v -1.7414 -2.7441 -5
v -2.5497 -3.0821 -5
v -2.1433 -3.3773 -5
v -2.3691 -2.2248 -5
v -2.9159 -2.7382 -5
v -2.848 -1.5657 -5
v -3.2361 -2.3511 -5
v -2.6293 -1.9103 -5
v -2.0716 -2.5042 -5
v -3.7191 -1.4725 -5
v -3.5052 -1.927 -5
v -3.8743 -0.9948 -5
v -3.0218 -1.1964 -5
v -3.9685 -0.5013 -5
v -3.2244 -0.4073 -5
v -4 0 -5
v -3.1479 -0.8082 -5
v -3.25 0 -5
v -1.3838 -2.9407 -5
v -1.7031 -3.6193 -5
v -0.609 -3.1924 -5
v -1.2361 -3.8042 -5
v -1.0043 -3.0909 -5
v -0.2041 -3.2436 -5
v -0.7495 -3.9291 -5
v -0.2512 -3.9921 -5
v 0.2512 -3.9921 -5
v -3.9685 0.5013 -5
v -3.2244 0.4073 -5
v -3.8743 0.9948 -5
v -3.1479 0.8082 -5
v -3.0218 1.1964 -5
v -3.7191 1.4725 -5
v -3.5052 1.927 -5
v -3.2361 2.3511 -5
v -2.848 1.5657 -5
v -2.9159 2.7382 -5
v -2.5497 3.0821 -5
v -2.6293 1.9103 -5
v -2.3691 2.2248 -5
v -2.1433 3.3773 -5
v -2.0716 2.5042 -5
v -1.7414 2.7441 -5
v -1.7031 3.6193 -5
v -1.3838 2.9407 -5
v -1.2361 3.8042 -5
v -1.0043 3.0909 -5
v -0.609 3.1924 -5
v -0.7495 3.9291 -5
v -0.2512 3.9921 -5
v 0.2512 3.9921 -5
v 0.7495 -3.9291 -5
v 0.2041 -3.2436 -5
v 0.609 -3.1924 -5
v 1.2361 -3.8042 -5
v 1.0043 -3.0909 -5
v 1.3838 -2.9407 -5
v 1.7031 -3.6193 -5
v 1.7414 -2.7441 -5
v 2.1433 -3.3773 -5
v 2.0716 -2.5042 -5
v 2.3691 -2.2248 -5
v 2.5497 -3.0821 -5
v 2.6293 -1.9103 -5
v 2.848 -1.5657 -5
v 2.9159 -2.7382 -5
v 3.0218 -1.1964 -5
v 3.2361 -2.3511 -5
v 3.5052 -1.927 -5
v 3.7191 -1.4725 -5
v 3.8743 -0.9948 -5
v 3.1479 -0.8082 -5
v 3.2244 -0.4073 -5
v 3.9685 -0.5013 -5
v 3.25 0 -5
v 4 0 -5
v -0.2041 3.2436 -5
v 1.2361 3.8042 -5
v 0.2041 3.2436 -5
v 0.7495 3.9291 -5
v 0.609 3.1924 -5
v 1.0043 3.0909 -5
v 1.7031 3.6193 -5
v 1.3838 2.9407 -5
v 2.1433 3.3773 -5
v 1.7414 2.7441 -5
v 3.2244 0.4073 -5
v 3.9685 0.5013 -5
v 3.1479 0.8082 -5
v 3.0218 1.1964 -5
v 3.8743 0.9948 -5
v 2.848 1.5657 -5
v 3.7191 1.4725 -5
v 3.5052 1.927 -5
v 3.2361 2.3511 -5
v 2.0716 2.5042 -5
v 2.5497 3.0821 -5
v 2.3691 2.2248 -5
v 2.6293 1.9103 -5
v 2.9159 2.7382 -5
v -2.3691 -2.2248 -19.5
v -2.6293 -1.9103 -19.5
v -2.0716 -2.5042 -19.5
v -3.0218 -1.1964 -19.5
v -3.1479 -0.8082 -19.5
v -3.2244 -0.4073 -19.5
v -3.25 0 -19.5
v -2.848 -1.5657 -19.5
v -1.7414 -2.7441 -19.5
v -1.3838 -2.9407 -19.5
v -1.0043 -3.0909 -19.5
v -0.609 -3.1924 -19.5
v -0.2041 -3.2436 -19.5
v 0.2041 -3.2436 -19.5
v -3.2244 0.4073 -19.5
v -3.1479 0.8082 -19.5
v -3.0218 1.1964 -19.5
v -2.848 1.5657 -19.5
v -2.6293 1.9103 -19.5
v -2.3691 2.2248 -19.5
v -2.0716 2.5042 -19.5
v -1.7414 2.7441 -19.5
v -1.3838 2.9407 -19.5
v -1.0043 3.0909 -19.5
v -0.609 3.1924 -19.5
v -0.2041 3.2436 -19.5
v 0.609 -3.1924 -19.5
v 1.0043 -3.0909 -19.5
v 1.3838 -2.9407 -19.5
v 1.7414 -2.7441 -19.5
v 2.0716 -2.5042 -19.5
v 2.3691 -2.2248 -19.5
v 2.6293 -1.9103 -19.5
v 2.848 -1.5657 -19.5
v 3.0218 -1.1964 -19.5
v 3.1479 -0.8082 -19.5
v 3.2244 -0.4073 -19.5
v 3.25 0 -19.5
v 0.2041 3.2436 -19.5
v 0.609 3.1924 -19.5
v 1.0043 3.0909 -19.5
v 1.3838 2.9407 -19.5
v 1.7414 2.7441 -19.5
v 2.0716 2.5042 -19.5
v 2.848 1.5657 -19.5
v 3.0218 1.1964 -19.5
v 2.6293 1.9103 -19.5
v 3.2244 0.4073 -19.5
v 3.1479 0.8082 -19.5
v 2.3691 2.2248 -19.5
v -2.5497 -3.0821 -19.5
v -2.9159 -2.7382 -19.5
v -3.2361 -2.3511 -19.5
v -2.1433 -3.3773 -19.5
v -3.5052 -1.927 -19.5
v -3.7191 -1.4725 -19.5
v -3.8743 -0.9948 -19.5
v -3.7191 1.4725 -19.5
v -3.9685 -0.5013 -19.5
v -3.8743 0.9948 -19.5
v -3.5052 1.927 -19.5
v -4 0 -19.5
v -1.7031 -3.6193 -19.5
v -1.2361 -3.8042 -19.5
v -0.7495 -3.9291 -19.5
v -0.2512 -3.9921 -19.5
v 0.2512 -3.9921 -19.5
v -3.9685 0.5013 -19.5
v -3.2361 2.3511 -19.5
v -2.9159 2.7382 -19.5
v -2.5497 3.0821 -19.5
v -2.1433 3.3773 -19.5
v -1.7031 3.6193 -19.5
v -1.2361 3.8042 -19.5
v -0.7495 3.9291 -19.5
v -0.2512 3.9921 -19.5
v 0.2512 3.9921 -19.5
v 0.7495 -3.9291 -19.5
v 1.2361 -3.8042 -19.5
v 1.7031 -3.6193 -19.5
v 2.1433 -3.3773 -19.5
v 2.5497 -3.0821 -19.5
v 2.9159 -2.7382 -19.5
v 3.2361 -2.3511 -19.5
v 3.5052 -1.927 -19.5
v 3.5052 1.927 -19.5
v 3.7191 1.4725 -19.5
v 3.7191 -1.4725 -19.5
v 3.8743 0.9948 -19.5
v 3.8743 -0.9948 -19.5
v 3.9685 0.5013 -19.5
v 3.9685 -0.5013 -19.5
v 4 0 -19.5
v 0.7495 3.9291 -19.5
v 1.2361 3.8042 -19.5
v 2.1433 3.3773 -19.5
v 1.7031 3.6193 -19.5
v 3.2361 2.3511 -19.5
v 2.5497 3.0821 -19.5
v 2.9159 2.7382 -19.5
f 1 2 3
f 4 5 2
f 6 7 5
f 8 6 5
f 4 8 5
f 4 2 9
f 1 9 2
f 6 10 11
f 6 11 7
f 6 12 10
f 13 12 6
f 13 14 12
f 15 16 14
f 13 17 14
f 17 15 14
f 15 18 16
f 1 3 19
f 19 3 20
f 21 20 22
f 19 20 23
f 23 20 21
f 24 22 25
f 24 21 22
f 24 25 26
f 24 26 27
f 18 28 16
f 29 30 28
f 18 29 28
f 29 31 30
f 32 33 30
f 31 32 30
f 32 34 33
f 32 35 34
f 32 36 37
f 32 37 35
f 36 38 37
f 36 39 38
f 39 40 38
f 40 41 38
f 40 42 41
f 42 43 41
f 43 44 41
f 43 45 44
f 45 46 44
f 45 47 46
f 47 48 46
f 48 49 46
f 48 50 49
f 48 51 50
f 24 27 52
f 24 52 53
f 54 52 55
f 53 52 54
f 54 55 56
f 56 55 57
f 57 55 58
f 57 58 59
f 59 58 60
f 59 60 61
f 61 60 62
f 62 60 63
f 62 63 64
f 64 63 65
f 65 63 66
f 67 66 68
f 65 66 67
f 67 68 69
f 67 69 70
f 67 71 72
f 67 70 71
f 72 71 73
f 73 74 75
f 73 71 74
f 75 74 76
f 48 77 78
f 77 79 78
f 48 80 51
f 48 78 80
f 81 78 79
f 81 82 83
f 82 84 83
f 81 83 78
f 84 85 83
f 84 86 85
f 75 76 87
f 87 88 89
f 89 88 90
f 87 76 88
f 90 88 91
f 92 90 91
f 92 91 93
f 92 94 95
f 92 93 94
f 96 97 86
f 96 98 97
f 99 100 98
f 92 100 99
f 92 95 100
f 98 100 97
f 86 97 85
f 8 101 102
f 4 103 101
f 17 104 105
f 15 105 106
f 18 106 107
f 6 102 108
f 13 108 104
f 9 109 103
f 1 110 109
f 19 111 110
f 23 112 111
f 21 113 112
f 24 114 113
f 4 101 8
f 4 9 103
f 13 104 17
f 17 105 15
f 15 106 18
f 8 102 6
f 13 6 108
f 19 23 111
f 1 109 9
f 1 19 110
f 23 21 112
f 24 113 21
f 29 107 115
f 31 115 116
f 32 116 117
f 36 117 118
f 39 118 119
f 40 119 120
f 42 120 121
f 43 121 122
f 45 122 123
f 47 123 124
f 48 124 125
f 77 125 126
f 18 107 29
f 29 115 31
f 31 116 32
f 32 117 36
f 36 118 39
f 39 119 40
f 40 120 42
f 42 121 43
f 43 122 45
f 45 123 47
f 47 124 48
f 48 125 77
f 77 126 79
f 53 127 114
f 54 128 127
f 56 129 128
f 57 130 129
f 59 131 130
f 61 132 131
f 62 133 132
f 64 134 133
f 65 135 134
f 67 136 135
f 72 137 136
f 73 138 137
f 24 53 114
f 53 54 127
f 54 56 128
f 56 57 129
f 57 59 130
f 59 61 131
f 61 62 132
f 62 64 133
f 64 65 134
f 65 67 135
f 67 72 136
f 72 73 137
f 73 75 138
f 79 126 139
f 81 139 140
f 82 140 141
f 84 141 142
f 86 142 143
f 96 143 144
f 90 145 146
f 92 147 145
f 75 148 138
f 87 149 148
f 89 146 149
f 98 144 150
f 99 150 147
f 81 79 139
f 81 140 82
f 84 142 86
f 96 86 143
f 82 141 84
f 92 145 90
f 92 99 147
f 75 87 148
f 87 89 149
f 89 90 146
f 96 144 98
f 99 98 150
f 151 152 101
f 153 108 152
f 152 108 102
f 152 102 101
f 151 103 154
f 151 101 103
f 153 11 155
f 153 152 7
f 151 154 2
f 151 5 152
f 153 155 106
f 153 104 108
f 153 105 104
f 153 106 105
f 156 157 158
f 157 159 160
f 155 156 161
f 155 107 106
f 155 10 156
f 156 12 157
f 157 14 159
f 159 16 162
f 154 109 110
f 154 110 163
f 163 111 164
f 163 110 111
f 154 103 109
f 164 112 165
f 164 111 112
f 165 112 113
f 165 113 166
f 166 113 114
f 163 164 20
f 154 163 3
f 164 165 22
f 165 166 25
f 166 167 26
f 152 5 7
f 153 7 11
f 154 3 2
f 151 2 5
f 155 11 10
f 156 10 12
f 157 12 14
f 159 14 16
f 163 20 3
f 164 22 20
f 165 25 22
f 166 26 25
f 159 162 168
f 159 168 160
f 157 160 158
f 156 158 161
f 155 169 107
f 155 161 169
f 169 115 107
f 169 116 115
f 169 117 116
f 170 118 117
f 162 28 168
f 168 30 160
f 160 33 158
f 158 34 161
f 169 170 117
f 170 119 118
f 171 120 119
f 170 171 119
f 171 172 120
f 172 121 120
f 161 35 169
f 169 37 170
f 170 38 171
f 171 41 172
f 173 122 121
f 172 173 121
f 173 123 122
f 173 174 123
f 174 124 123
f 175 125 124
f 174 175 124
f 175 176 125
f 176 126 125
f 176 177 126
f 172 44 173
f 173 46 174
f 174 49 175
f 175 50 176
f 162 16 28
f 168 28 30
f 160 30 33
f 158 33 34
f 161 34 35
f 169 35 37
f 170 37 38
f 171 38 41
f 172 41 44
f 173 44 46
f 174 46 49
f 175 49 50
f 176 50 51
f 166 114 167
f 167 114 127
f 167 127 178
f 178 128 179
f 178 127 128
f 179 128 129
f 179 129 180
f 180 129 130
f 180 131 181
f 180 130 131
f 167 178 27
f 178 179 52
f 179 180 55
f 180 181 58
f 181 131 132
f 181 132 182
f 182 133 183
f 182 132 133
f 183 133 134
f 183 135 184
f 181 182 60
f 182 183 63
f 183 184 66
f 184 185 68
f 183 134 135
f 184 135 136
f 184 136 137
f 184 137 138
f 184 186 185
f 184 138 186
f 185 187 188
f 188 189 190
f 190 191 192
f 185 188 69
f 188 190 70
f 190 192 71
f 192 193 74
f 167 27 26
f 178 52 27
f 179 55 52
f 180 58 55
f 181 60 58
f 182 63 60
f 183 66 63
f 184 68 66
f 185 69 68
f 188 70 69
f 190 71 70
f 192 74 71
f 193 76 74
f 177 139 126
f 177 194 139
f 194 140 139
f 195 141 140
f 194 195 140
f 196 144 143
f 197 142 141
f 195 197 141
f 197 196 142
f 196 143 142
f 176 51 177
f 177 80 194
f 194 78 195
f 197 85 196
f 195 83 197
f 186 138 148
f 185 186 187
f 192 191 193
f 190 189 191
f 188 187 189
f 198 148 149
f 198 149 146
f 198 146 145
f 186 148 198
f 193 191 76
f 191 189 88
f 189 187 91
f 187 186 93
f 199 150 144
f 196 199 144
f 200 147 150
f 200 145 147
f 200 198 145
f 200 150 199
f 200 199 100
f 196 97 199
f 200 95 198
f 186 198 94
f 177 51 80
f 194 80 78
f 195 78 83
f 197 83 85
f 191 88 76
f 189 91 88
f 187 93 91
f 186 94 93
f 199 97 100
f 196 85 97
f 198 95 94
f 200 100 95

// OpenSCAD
$fn = 50;

difference() {
	union() {
		translate(v = [0, 0, -19.5]) {
			cylinder(h = 19.5, r = 4.0);
		}
	}
	union() {
		translate(v = [0, 0, 0]) {
			rotate(a = [0, 0, 0]) {
				difference() {
					union() {
						translate(v = [0, 0, -5]) {
							linear_extrude(height = 5) {
								polygon(points = [[5.914249999999999, 0.0], [2.957125, 5.1218907443321156], [-2.9571249999999982, 5.1218907443321156], [-5.914249999999999, 7.242867331857232e-16], [-2.9571250000000022, -5.121890744332115], [2.9571249999999956, -5.121890744332118]]);
							}
						}
					}
					union();
				}
			}
		}
		#translate(v = [0, 0, -100.0]) {
			cylinder(h = 200, r = 3.25);
		}
	}
}
